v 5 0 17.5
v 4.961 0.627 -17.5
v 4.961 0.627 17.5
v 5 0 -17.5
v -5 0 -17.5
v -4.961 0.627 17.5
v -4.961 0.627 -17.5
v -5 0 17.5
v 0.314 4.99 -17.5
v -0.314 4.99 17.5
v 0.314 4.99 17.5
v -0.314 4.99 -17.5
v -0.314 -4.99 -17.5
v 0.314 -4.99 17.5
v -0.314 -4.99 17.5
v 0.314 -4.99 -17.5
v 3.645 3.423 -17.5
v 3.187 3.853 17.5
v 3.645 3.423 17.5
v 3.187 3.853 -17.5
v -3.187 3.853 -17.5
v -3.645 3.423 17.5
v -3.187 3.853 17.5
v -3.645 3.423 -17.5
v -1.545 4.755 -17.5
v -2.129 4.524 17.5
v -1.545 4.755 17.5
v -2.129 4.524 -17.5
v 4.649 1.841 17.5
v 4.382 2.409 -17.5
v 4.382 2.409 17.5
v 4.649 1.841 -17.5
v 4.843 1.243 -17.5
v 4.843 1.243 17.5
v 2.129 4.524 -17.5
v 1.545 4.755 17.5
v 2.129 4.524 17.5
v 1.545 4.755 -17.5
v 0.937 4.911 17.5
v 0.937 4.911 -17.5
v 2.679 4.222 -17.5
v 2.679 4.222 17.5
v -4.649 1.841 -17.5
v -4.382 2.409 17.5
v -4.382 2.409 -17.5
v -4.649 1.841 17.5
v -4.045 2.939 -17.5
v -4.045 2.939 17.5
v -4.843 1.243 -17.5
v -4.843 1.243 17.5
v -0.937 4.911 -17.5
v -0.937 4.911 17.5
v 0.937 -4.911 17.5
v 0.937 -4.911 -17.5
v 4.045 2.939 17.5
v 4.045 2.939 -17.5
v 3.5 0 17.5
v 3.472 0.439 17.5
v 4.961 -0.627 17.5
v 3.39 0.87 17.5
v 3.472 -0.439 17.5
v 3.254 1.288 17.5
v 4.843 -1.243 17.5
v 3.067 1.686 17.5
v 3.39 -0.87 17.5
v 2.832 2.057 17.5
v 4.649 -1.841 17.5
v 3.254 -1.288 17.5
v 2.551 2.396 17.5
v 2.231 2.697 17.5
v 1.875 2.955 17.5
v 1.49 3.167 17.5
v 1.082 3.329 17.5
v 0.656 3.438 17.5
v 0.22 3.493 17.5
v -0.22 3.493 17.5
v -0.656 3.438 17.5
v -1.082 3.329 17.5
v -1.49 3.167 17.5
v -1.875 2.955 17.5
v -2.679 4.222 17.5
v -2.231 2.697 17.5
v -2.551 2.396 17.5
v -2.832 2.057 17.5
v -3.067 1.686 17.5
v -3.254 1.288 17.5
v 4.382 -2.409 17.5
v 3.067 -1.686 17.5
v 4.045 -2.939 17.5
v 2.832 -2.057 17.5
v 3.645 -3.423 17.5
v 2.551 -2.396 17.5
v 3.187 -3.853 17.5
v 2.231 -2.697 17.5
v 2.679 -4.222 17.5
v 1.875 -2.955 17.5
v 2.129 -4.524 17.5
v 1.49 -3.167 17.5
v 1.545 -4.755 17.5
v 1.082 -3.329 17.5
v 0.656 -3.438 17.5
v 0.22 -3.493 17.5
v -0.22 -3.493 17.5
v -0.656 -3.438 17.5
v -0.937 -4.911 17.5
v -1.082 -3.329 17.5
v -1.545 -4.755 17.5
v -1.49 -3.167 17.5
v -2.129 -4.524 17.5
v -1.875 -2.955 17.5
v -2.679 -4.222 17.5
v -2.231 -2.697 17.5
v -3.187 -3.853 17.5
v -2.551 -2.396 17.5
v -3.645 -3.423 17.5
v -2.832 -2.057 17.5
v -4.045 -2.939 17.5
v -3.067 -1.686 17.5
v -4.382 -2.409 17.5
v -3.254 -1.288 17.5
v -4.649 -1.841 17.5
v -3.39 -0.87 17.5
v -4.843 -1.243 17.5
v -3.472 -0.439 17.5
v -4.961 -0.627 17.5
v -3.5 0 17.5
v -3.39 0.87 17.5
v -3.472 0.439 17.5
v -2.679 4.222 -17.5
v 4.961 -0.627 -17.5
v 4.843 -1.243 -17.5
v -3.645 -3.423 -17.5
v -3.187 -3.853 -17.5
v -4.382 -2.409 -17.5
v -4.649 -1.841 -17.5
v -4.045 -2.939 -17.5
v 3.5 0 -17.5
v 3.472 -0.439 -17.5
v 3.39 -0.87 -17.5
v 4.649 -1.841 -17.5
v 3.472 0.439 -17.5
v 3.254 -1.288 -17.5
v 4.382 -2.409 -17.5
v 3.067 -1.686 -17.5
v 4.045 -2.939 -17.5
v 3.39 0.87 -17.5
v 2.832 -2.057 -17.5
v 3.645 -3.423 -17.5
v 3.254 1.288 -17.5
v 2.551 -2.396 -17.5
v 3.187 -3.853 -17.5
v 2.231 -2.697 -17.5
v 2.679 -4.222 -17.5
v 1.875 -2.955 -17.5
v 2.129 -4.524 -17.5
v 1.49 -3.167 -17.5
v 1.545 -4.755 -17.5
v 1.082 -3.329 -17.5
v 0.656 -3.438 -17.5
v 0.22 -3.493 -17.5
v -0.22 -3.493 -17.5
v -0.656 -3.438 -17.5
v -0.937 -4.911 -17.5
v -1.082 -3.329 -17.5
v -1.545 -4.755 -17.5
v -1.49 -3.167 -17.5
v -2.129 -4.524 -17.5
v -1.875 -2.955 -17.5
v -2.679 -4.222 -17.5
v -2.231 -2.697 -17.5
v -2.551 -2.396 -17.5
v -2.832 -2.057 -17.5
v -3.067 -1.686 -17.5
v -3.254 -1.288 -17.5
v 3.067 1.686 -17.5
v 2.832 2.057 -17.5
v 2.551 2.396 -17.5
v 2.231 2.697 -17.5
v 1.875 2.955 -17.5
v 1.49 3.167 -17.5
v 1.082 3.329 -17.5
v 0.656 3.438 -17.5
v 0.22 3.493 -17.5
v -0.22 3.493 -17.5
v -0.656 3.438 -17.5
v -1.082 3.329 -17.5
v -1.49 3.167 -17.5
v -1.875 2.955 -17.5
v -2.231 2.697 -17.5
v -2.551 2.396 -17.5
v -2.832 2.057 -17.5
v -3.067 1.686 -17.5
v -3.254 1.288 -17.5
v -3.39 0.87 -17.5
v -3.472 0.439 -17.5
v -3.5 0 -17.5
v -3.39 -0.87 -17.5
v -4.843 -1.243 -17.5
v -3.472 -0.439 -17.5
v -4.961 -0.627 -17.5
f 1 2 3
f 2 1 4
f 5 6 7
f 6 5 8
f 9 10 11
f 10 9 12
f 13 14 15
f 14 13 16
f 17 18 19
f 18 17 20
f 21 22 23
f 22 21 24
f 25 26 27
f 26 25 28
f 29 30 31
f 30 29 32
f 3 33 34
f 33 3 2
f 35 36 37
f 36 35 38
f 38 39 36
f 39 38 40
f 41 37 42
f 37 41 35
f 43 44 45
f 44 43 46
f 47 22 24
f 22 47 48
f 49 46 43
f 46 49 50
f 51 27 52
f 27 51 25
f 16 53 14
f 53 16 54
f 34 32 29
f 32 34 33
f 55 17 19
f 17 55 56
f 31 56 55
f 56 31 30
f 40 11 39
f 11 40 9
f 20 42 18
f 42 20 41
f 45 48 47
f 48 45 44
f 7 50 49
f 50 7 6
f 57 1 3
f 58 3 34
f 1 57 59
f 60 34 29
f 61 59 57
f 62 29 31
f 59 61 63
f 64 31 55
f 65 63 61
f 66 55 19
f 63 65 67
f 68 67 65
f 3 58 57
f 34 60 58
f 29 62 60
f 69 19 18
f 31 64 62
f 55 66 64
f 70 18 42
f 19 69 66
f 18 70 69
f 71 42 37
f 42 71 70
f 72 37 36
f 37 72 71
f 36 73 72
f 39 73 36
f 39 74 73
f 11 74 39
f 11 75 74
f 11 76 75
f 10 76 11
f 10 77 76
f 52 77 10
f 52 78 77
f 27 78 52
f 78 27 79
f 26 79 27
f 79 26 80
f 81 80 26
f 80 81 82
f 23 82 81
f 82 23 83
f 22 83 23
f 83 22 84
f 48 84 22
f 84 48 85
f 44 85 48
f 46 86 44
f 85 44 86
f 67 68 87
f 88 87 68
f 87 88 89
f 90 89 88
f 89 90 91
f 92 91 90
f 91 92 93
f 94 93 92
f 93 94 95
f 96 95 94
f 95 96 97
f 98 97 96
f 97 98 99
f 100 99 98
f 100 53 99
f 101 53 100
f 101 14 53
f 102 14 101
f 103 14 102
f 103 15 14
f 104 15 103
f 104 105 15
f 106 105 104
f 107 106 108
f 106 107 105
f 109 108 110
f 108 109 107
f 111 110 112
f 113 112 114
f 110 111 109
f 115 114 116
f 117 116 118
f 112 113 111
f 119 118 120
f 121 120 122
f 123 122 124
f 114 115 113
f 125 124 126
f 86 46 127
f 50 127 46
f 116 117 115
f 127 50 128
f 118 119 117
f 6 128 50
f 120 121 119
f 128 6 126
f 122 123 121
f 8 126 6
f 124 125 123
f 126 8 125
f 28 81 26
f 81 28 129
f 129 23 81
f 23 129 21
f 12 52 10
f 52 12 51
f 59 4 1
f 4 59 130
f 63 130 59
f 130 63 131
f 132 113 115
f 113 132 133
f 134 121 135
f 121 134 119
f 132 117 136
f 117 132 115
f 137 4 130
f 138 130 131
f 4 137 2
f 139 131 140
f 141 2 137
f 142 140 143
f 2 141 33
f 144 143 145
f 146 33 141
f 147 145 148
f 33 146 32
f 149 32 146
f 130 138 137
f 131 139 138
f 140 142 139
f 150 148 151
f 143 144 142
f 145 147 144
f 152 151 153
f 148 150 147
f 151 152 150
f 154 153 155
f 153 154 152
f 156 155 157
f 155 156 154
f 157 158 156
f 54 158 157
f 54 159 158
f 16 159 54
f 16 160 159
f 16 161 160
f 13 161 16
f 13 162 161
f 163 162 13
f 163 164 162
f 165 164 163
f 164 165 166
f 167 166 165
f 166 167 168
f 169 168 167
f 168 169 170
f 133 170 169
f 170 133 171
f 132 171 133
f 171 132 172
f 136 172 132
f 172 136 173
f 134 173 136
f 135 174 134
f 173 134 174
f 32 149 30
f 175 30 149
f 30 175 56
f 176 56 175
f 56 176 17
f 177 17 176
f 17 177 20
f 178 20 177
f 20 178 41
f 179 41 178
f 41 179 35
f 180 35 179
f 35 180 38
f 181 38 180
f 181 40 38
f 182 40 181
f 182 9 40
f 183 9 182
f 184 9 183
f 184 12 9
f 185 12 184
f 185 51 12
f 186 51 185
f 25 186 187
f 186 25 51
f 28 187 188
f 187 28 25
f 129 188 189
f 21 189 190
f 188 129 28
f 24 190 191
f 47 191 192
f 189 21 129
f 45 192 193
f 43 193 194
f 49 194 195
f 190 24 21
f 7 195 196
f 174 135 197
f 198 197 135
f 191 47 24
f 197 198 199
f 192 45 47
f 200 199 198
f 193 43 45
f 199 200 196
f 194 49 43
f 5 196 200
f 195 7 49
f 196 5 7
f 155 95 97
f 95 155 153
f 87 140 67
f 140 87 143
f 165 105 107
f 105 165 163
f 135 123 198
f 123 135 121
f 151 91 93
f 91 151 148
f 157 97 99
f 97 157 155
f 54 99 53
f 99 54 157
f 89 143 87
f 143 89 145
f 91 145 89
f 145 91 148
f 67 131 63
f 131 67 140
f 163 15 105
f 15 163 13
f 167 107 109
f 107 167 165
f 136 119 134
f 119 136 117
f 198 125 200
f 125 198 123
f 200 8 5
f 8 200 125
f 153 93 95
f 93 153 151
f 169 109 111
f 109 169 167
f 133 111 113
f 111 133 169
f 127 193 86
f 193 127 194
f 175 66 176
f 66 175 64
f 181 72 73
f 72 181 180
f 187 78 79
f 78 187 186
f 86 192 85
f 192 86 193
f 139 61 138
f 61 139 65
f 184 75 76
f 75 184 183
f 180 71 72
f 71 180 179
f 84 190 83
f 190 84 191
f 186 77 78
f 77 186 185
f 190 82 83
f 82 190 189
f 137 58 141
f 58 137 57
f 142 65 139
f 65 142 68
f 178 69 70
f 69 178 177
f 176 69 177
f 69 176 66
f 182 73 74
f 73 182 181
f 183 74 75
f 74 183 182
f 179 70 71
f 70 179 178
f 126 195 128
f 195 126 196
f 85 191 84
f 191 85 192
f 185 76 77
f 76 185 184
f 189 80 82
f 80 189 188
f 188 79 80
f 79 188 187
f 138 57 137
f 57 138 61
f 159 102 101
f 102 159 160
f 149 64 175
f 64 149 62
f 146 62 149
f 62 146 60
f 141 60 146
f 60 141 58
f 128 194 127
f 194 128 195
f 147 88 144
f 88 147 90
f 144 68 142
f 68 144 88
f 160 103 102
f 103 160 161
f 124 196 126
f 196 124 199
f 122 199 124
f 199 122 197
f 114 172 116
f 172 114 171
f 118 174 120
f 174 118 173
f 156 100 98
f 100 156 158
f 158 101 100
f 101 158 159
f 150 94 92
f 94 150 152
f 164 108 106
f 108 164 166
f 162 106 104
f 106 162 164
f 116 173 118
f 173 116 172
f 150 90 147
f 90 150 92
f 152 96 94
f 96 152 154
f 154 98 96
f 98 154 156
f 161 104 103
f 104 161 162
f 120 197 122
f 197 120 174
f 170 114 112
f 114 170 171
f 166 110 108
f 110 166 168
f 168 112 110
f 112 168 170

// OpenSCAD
$fn = 50;


difference() {
	union() {
		translate(v = [0, 0, -17.5000000000]) {
			cylinder(h = 35, r = 5.0000000000);
		}
	}
	union() {
		translate(v = [0, 0, -100.0000000000]) {
			cylinder(h = 200, r = 3.5000000000);
		}
	}
}
